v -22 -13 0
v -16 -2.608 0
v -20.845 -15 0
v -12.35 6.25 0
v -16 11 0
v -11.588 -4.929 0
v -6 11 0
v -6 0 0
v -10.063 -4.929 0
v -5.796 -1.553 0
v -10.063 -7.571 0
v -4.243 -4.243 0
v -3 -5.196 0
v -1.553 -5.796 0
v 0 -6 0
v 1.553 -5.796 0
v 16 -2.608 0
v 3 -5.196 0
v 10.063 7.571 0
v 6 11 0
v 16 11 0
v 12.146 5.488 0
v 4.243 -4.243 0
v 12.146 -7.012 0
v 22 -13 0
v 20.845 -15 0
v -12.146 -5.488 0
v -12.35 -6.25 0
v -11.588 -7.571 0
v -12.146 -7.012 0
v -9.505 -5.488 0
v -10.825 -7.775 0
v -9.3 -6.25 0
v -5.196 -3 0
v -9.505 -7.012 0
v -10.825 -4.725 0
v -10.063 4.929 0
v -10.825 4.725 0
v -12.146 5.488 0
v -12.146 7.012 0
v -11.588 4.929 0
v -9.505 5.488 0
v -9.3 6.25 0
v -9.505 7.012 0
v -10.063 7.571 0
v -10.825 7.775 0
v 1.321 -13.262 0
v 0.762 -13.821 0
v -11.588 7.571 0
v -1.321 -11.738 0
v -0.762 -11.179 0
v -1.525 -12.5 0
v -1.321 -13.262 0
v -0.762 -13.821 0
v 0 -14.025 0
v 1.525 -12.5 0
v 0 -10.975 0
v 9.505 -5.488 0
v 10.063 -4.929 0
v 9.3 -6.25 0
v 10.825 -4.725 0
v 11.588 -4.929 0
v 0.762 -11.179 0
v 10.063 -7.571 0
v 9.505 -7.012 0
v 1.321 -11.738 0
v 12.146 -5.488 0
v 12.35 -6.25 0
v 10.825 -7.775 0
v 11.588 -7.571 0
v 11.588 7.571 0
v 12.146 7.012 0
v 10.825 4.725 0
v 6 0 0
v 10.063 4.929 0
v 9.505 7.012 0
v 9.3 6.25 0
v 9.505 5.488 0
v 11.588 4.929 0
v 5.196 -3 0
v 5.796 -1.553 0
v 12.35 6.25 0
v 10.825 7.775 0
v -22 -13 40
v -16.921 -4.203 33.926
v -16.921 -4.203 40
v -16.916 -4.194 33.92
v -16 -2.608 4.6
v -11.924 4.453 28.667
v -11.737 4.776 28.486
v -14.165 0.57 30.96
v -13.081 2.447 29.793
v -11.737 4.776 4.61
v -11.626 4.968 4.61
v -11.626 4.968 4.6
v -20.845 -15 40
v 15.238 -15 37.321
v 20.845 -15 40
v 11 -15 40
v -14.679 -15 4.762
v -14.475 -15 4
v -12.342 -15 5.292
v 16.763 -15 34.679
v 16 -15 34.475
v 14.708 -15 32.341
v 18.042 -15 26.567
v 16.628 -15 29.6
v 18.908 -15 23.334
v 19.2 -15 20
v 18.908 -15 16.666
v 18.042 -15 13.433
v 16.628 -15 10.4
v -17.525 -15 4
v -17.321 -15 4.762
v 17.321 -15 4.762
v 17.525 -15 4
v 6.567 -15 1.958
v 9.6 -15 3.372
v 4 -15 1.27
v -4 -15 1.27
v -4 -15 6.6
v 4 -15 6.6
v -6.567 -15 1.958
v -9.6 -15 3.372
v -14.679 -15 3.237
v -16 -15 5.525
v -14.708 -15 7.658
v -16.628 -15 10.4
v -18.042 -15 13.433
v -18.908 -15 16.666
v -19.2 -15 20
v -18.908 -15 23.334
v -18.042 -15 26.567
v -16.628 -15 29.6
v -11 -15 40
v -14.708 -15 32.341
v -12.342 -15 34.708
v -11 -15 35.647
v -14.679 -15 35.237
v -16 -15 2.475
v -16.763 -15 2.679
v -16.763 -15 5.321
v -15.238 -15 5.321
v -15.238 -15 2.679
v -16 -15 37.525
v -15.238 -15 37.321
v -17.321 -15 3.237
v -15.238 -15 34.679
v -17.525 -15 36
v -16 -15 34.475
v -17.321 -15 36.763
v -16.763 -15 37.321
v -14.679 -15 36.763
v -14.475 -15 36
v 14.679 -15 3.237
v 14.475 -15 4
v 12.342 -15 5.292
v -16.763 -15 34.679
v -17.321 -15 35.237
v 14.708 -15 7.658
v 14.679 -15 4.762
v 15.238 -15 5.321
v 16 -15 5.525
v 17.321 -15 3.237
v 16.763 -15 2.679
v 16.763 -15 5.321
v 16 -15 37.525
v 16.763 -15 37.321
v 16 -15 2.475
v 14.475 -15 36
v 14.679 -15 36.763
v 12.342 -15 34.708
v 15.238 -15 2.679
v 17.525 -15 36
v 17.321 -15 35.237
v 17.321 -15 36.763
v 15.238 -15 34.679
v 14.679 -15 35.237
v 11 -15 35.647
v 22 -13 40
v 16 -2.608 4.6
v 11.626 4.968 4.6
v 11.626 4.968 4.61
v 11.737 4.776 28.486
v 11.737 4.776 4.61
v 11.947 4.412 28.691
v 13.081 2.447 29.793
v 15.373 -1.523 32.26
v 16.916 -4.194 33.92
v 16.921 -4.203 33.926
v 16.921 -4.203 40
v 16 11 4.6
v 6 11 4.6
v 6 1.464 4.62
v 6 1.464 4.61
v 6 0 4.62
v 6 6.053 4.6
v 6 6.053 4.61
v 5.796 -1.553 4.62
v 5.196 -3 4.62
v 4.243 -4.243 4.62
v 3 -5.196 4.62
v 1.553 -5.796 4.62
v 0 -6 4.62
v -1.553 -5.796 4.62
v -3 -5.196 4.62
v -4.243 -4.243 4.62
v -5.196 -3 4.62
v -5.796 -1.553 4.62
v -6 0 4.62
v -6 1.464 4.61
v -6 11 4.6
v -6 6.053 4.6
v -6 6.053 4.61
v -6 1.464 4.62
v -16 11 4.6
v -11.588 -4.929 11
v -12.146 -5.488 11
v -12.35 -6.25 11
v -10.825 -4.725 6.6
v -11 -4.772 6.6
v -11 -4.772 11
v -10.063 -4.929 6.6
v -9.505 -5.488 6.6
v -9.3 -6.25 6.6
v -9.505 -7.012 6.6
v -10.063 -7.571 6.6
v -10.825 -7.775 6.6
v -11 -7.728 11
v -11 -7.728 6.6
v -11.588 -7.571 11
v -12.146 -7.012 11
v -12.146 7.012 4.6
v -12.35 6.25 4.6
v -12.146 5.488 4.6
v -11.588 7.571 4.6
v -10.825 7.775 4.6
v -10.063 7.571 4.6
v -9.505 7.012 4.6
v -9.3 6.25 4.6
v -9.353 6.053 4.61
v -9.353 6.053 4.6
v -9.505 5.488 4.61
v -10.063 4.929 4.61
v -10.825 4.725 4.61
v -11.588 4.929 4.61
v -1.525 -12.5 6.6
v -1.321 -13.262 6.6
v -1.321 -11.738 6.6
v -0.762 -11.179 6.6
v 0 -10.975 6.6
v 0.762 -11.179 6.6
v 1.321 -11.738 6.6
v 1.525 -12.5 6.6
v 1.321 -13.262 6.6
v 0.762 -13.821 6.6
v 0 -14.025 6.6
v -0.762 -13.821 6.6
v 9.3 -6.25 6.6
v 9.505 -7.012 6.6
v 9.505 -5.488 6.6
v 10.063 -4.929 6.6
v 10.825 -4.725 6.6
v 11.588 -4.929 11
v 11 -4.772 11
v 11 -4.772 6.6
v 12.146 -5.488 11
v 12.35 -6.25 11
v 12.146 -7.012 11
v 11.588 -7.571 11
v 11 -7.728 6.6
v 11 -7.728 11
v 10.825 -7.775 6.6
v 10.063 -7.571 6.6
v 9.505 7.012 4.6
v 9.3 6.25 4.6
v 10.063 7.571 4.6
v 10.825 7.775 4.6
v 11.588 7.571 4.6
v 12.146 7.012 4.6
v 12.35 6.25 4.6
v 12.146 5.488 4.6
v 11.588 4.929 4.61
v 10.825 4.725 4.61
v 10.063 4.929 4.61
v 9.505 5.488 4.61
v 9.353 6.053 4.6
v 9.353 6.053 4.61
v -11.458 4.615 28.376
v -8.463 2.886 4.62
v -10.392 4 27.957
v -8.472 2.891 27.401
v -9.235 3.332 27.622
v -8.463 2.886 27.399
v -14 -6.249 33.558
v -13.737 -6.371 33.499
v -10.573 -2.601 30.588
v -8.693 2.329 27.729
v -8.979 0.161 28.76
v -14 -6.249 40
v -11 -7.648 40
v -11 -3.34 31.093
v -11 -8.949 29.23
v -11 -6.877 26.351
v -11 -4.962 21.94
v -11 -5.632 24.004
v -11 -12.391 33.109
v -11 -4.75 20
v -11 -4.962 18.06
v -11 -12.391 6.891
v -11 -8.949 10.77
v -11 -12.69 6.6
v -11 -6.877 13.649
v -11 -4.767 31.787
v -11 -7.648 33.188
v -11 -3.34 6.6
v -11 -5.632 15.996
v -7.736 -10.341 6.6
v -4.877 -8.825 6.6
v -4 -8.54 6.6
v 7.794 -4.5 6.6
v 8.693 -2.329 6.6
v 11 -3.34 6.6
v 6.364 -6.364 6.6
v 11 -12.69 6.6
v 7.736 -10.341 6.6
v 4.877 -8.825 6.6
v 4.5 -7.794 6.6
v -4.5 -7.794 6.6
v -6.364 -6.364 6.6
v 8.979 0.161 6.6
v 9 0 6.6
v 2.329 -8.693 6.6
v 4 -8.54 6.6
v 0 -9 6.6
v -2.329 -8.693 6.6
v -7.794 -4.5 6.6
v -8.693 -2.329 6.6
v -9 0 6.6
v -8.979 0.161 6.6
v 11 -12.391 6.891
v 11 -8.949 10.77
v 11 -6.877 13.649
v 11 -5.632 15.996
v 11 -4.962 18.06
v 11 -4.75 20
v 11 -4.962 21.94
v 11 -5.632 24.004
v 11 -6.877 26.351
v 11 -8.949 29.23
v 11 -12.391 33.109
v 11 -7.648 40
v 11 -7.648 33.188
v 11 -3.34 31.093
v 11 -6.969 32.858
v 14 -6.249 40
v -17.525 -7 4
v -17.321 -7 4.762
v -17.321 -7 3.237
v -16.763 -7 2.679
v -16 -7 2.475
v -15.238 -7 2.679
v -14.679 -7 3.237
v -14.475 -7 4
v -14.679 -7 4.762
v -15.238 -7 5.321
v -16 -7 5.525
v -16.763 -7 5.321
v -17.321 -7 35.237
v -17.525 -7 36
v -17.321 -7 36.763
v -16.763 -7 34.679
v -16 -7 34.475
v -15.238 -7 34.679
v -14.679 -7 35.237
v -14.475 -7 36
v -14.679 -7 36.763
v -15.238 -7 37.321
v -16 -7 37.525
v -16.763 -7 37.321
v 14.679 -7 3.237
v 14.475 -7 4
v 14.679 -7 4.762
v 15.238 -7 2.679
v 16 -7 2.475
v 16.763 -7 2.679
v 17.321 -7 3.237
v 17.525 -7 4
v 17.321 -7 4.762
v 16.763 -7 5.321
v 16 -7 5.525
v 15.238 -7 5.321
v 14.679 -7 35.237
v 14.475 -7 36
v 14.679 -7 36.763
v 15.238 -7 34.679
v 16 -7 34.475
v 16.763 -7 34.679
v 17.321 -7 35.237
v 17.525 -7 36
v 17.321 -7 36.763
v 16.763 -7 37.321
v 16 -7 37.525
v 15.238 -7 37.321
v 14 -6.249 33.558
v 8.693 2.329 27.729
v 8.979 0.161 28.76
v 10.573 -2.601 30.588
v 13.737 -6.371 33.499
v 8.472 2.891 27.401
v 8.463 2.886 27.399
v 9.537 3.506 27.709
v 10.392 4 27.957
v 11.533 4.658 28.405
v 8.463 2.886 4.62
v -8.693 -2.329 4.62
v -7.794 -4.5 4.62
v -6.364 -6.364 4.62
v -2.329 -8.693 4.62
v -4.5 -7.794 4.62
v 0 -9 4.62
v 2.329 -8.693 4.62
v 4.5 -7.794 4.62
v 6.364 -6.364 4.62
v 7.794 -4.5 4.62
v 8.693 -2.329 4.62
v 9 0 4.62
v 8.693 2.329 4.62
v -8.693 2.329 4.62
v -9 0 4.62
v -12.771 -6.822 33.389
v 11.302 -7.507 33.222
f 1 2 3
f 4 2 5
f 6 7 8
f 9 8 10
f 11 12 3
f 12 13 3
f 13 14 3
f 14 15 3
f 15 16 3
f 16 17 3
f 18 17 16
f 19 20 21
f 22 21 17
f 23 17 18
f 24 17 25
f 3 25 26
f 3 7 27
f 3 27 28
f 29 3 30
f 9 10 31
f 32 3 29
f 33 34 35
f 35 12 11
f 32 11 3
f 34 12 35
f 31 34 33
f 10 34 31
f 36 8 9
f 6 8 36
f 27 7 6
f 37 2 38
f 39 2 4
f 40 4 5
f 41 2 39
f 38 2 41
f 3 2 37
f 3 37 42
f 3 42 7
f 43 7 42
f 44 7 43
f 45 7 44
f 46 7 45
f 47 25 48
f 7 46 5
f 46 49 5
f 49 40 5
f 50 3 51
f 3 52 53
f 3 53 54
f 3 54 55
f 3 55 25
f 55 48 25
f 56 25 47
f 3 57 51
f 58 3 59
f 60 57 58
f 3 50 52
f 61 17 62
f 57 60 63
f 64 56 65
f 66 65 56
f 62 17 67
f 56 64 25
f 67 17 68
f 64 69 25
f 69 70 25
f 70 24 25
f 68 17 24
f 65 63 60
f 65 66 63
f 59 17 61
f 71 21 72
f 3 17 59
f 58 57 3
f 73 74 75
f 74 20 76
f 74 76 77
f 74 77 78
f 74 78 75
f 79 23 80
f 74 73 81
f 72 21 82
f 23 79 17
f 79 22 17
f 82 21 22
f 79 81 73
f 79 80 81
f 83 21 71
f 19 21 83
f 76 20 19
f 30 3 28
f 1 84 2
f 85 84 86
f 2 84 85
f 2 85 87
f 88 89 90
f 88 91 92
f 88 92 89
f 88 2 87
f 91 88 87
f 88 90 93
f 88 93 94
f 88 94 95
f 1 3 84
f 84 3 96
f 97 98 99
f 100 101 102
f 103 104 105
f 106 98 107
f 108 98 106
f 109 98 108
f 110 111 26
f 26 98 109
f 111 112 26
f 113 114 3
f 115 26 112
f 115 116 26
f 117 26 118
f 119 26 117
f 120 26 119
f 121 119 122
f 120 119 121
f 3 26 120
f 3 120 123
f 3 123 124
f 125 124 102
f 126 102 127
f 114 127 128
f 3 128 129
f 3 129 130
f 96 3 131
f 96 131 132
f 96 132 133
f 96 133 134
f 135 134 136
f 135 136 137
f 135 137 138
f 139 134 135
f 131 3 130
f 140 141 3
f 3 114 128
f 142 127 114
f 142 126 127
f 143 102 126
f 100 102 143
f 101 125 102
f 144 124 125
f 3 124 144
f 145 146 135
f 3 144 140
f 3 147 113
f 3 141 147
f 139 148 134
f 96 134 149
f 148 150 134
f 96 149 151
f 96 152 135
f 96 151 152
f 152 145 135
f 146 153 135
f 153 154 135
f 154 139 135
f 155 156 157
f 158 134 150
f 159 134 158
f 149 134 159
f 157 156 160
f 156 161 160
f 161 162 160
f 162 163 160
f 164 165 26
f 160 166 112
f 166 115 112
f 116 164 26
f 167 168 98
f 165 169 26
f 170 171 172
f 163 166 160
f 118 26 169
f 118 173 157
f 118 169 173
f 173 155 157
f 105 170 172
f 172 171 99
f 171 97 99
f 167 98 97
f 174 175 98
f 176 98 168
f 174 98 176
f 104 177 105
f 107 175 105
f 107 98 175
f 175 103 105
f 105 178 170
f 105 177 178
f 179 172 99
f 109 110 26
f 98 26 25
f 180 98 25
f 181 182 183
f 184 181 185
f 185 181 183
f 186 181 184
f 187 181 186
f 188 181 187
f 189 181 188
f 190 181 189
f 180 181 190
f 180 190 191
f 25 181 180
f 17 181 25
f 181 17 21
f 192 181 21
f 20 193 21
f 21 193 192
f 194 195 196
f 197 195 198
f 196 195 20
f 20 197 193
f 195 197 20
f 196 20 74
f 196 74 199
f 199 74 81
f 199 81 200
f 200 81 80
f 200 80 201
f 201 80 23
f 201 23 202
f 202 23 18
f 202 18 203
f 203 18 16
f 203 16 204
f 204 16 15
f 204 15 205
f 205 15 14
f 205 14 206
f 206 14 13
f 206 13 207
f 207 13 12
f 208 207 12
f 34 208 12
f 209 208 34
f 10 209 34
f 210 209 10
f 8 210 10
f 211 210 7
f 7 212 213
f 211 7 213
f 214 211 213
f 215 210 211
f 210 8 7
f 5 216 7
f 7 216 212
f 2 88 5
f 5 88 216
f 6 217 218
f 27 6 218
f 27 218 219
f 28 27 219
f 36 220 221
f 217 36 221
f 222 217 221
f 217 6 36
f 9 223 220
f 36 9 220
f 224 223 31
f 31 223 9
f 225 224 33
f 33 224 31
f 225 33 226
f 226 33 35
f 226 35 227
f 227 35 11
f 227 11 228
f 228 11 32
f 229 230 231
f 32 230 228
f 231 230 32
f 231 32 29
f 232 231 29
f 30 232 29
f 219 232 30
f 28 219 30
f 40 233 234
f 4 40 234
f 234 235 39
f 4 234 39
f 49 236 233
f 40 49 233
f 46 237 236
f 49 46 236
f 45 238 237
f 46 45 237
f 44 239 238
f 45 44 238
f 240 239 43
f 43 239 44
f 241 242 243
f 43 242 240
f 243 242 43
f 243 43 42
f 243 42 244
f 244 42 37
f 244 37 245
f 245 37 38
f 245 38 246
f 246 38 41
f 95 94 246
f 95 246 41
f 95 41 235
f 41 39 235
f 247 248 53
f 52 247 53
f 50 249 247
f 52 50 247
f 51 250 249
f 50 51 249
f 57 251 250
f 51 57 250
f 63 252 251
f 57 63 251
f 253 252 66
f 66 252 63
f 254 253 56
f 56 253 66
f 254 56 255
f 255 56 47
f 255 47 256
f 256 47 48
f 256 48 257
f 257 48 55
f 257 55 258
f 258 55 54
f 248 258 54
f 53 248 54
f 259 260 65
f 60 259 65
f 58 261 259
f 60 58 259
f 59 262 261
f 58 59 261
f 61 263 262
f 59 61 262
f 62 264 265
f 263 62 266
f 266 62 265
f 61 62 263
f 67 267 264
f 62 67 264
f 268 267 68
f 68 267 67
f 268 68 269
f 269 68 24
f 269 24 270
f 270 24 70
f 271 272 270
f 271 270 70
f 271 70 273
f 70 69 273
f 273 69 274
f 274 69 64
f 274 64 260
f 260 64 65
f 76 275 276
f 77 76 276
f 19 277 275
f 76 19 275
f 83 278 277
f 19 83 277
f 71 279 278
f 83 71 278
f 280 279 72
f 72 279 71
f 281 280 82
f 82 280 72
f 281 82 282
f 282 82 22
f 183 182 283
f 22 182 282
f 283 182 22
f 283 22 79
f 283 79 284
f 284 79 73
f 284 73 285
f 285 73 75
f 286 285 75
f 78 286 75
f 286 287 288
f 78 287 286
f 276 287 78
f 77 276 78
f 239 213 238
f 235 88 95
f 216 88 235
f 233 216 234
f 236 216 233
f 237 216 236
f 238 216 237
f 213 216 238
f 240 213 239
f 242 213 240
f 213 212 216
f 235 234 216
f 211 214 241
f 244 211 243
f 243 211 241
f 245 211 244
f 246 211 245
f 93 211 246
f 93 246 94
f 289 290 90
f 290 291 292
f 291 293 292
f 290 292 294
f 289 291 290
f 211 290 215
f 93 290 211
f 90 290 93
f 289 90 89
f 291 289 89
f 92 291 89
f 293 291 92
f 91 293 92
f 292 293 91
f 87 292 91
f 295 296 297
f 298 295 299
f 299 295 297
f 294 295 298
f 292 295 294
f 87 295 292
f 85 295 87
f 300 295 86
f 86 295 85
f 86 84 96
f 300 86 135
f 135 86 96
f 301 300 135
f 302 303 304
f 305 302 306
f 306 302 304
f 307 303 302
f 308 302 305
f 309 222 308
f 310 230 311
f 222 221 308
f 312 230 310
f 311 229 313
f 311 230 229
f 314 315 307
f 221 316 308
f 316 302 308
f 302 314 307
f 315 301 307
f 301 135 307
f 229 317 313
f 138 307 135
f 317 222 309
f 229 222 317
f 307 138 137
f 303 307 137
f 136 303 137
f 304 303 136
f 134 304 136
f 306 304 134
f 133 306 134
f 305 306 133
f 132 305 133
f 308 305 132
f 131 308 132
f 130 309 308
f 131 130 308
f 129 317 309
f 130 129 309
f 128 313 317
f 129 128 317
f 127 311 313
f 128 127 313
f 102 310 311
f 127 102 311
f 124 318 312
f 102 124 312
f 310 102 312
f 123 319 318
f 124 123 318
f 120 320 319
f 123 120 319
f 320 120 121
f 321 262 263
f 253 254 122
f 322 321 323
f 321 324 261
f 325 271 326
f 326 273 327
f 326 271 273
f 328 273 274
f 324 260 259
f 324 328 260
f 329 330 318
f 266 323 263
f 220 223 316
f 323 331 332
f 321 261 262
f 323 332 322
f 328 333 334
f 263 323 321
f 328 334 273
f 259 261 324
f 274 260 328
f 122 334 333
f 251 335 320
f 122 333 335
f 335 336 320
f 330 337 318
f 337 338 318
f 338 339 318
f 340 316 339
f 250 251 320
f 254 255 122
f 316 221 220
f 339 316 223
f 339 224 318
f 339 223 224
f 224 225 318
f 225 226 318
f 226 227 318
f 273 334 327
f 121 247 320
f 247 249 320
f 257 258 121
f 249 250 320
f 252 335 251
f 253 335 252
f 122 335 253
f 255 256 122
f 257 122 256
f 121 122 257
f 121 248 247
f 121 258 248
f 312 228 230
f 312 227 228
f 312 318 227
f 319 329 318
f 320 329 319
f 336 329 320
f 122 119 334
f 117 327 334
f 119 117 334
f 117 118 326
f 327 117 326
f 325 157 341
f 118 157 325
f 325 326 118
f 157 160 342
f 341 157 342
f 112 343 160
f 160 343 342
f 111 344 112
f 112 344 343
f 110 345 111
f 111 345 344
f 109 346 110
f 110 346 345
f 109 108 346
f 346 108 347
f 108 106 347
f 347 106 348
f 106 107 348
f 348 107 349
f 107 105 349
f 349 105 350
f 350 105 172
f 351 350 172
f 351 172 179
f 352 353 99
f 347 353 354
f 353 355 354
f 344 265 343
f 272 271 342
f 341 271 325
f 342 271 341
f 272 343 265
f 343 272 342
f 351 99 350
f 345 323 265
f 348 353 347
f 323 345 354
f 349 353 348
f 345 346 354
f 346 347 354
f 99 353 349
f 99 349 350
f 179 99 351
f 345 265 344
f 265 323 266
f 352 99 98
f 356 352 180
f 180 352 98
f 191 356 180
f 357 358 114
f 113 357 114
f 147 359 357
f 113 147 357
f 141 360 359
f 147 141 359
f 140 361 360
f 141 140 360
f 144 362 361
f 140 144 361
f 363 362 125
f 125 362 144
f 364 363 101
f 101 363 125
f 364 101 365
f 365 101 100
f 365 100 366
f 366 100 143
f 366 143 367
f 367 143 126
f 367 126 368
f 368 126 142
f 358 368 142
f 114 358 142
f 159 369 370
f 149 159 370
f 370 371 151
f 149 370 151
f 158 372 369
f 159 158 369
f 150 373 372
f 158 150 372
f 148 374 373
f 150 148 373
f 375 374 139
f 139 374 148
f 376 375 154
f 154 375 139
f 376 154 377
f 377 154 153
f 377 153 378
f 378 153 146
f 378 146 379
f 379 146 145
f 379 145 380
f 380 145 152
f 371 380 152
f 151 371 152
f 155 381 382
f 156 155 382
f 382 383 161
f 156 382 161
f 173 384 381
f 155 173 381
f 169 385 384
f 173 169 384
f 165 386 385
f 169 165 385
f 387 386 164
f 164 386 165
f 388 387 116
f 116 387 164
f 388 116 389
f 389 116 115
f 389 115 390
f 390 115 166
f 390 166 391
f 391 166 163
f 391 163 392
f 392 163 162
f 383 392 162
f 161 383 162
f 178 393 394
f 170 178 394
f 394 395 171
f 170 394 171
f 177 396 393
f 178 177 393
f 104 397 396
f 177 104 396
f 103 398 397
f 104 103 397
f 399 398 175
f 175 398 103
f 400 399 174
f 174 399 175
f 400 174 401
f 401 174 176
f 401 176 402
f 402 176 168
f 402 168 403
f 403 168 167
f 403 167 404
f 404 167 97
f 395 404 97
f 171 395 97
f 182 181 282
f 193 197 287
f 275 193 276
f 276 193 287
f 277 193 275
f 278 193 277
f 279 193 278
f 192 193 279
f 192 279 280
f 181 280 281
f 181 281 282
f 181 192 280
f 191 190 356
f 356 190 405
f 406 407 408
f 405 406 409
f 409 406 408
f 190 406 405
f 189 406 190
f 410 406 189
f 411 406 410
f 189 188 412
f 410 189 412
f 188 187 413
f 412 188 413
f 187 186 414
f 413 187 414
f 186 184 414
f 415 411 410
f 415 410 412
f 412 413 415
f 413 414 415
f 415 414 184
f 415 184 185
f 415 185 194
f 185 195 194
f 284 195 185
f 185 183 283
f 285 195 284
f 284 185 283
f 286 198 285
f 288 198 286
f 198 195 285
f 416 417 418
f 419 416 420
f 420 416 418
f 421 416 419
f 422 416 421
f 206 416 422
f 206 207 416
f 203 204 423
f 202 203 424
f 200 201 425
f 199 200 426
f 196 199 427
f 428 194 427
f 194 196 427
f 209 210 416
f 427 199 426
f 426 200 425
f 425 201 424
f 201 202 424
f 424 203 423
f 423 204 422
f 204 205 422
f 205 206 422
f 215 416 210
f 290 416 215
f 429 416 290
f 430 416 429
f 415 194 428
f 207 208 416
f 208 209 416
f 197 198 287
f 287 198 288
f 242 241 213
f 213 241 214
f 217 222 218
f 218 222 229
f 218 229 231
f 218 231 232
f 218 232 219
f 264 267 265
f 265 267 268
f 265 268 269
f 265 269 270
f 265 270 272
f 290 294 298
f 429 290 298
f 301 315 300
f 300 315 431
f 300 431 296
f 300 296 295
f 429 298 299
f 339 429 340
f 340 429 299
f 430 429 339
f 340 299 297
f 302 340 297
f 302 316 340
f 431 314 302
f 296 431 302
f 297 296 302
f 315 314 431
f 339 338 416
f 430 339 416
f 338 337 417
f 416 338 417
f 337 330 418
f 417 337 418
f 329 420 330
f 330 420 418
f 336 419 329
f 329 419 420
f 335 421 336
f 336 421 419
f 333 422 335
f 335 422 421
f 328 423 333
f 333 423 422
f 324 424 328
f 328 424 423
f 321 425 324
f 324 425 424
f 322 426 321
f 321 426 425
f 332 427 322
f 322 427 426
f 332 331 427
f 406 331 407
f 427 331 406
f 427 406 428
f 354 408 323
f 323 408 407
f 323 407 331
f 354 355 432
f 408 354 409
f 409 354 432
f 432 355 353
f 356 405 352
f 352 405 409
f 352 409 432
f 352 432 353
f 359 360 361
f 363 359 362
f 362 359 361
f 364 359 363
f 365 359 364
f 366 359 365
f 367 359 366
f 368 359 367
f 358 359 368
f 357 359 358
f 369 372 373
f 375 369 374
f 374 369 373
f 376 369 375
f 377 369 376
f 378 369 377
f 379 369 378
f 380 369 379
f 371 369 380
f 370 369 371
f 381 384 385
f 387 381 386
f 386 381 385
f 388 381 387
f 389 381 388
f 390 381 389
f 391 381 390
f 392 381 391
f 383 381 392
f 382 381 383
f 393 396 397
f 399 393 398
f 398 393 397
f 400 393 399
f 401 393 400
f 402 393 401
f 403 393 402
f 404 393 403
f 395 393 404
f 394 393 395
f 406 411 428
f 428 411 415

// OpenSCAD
// file: configuration.scad
// Increase this if your slicer or printer make holes too tight.
extra_radius = 0.1;

// OD = outside diameter, corner to corner.
m3_nut_od = 6.1;
m3_nut_radius = m3_nut_od/2 + 0.2 + extra_radius;

// Major diameter of metric 3mm thread.
m3_major = 2.85;
m3_radius = m3_major/2 + extra_radius;
m3_wide_radius = m3_major/2 + extra_radius + 0.2;

// NEMA17 stepper motors.
motor_shaft_diameter = 5;
motor_shaft_radius = motor_shaft_diameter/2 + extra_radius;

// Frame brackets.
thickness = 3.6;
// main file
include <configuration.scad>;

barrel_radius = 8;
barrel_height = 30;

groove_radius = 6;
groove_height = 4.6;

fan_offset = 15;

module hotend_fan() {
  difference() {
    union() {
      translate([0, 2 - fan_offset, 0])
        cylinder(r=22, h=40, $fn=6);
      translate([0, 0, groove_height/2])
        cube([32, 22, groove_height], center=true);
    }
    // Opposite side cutaway (outgoing airflow).
    translate([0, 38, groove_height + 0.01]) rotate([0, 0, 30])
      cylinder(r=40, h=200, $fn=6);
    // Groove mount insert slot.
    translate([0, 10, 0])
      cube([2*groove_radius, 20, 20], center=true);
    // Keep printed plastic away from the hotend.
    intersection() {
      translate([0, 18, 0]) rotate([0, 0, 30])
        cylinder(r=28, h=100, center=true, $fn=36);
      translate([0, 10, barrel_height-5])
        cylinder(r1=barrel_radius-1, r2=100, h=55, $fn=36);
    }
    // Groove mount.
    cylinder(r=groove_radius, h=200, center=true, $fn=24);
    // J-Head barrel.
    translate([0, 0, groove_height + 0.02])
      cylinder(r=barrel_radius + 1, h=100, $fn=24);
    // Fan mounting surface and screws.
    translate([0, -50 - fan_offset, 0])
      cube([100, 100, 100], center=true);
    for (x = [-16, 16]) {
      for (z = [-16, 16]) {
        translate([x, -fan_offset, z+20]) rotate([90, 0, 0]) #
          cylinder(r=m3_radius, h=16, center=true, $fn=12);
      }
    }
    // Vertical inner space.
    intersection() {
      cube([22, 100, 100], center=true);
      translate([0, -12, groove_height + 2])
        cylinder(r=16, h=40, $fn=6);
    }
    // Air funnel.
    difference() {
      translate([0, -1 - fan_offset, 20]) rotate([-90, 0, 0])
        cylinder(r1=20, r2=0, h=25, $fn=36);
      cube([8, 40, 40], center=true);
    }
    for (a = [60:60:359]) {
      rotate([0, 0, a]) translate([0, 12.5, 5]) #
        cylinder(r=m3_radius, h=12, center=true, $fn=12);
    }
  }
}

hotend_fan();

// Hotend barrel.
translate([0, 0, groove_height]) %
  cylinder(r=barrel_radius, h=barrel_height);

// 40mm fan.
translate([0, -5 - fan_offset, 20]) % difference() {
  cube([40, 10, 40], center=true);
  rotate([90, 0, 0,]) cylinder(r=19, h=20, center=true);
}
